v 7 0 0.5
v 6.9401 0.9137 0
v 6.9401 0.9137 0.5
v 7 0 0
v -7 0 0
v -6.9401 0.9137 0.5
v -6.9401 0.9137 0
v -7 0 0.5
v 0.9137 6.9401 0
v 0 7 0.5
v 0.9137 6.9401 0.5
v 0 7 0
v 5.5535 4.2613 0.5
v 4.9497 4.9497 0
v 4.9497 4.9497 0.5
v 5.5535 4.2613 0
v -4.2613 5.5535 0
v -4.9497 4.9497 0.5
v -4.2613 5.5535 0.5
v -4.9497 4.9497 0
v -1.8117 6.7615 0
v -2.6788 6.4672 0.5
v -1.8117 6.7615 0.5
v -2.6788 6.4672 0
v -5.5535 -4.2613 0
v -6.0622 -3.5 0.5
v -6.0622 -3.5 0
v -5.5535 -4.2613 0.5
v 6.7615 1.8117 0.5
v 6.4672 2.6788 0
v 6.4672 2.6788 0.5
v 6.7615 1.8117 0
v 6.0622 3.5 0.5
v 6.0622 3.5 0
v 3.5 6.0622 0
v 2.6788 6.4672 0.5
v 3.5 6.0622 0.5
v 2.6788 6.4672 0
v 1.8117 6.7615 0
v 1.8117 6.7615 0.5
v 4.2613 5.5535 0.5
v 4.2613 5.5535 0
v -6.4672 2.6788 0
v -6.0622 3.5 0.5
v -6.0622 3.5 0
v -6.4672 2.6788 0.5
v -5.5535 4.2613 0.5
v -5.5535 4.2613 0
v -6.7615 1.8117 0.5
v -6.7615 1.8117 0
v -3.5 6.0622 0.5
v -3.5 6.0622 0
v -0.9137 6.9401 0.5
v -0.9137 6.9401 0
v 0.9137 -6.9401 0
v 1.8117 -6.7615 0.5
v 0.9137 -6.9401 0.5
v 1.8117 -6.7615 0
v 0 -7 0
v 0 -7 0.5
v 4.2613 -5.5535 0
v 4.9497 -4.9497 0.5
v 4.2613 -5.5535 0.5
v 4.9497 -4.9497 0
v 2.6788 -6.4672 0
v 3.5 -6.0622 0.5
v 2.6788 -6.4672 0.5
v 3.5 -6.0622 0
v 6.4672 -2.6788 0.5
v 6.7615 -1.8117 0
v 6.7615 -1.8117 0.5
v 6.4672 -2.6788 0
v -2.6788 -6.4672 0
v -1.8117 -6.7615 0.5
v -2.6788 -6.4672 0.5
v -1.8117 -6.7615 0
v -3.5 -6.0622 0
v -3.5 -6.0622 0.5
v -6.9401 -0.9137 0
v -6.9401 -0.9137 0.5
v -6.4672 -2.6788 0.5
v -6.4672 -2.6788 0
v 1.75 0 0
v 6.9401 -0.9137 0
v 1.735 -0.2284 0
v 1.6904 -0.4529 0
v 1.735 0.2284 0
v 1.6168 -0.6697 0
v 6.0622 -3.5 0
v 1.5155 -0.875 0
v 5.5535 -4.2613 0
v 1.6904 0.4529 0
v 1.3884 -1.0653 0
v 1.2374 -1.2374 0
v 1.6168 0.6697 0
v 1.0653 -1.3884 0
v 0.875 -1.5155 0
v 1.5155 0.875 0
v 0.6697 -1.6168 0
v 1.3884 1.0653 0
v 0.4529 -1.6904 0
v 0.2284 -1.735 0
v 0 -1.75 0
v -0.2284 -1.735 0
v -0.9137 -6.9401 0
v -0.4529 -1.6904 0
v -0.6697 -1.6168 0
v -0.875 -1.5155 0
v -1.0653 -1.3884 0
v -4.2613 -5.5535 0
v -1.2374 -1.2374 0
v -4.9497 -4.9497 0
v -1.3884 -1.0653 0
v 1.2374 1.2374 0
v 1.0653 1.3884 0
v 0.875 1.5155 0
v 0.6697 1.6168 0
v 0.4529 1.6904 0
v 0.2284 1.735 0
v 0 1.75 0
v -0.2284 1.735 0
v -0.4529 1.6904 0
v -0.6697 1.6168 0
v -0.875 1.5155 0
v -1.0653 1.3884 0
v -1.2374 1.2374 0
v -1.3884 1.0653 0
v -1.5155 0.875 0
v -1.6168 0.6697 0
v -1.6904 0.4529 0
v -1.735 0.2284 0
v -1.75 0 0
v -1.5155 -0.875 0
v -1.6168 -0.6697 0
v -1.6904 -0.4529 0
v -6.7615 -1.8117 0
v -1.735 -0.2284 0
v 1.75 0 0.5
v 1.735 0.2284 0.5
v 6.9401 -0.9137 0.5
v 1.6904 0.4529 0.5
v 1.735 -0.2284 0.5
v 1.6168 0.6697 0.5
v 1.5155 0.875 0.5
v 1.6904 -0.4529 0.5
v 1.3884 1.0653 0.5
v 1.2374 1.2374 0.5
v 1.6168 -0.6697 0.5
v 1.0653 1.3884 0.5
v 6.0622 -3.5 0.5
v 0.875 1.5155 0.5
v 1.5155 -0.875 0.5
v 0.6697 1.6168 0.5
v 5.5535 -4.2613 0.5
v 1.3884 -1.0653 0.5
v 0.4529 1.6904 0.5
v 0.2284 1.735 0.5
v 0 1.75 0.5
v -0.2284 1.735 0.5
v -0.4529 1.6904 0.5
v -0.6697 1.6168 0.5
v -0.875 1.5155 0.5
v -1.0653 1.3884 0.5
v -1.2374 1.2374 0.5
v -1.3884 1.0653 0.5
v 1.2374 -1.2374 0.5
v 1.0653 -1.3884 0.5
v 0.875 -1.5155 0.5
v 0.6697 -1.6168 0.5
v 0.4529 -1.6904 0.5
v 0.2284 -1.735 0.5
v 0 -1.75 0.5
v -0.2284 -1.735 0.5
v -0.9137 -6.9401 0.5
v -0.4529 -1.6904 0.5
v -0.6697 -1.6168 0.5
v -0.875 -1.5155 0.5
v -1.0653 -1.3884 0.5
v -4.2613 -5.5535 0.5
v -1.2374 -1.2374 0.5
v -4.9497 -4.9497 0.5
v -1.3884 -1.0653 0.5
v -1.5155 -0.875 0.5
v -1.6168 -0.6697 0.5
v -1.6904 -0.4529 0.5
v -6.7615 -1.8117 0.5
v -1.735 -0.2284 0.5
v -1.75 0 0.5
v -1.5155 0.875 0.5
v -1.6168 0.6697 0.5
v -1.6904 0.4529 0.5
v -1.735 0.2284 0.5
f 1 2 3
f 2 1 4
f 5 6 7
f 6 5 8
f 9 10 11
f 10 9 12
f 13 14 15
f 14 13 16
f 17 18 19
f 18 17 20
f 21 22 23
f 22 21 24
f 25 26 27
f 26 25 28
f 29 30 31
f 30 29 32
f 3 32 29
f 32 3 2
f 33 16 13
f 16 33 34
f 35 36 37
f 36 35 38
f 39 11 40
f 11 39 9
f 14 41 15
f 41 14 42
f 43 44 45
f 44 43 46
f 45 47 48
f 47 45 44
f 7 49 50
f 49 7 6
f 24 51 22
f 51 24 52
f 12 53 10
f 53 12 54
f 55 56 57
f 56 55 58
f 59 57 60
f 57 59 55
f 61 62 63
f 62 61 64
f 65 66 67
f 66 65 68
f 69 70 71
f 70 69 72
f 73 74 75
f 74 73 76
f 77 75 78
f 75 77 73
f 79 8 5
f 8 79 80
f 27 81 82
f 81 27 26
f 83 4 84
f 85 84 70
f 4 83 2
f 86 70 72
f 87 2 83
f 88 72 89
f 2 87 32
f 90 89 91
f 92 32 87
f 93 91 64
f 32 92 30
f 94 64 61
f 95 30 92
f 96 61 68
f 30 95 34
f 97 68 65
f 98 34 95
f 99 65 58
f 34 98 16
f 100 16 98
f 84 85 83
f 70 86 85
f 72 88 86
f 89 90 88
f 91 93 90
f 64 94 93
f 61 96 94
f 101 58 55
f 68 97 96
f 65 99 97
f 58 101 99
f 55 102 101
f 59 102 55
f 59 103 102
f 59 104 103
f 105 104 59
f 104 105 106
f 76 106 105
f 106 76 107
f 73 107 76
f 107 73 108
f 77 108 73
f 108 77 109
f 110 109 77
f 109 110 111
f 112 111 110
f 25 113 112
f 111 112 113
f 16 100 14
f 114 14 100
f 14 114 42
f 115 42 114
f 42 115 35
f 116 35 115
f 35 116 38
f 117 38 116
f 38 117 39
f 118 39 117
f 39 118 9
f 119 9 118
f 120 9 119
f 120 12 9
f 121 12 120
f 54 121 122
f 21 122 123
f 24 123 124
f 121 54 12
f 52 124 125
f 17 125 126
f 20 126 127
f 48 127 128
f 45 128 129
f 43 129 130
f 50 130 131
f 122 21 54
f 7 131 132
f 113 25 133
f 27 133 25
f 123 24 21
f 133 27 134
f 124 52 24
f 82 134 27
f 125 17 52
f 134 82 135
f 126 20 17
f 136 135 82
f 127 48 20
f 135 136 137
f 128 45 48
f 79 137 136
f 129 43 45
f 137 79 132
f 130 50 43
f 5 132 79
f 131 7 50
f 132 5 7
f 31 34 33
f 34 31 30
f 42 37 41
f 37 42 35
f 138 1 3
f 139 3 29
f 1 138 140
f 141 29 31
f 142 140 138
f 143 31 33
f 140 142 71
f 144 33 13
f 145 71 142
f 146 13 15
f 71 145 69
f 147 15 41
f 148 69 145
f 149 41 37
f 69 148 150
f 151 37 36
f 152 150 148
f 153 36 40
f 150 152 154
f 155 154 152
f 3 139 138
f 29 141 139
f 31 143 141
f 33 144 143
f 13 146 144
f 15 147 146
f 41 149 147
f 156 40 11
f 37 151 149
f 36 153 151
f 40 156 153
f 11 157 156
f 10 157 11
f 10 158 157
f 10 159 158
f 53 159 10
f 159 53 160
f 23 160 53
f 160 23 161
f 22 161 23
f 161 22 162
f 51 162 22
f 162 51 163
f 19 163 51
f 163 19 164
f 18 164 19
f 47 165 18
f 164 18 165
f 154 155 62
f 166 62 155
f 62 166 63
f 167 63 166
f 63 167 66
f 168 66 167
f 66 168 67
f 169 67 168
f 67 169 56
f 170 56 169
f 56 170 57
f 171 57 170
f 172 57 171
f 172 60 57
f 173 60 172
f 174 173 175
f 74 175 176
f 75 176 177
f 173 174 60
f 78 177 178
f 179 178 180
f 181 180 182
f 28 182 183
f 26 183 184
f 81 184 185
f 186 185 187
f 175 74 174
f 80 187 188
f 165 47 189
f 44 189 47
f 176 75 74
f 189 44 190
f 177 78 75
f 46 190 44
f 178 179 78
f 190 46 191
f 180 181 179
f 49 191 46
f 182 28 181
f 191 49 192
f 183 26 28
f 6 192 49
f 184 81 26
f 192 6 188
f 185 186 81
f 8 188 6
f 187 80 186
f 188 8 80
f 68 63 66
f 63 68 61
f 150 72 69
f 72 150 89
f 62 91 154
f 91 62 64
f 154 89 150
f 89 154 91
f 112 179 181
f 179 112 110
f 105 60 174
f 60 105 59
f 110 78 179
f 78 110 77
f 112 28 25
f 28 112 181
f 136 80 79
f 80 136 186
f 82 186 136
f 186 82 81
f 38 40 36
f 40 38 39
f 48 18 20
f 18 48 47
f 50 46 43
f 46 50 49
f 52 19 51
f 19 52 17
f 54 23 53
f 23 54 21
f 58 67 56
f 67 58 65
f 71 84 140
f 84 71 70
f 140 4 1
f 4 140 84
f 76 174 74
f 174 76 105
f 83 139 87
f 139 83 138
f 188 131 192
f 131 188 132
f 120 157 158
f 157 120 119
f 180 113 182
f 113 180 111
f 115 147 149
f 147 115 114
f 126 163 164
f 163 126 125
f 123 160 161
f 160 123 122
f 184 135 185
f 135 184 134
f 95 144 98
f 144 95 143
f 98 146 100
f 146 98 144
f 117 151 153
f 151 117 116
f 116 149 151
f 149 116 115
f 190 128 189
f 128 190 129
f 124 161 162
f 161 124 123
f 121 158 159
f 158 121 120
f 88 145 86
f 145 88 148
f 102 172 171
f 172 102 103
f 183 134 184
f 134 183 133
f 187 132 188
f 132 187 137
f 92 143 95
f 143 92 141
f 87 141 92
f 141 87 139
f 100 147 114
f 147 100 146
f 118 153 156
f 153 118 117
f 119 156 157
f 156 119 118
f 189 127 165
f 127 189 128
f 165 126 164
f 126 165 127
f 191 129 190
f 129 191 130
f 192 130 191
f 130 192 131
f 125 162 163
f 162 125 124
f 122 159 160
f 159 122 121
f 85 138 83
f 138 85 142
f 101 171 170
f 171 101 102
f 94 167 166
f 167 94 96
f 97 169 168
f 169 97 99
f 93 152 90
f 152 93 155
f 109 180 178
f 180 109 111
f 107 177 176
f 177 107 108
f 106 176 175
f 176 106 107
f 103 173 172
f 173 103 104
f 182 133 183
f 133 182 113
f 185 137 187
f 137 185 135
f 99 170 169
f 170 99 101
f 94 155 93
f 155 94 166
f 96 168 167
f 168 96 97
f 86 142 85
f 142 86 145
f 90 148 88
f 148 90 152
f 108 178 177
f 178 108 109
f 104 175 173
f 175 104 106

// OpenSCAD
// Gen-EB — assembly gap shim, h = run_clear (rotor face -> flange); copper is inside the flanges
include <parameters.scad>;
$fn = 48;
difference() {
    cylinder(d=spacer_pad_od, h=gap_spacer_h);
    translate([0, 0, -0.1]) cylinder(d=spacer_pad_id, h=gap_spacer_h + 0.2);
}
